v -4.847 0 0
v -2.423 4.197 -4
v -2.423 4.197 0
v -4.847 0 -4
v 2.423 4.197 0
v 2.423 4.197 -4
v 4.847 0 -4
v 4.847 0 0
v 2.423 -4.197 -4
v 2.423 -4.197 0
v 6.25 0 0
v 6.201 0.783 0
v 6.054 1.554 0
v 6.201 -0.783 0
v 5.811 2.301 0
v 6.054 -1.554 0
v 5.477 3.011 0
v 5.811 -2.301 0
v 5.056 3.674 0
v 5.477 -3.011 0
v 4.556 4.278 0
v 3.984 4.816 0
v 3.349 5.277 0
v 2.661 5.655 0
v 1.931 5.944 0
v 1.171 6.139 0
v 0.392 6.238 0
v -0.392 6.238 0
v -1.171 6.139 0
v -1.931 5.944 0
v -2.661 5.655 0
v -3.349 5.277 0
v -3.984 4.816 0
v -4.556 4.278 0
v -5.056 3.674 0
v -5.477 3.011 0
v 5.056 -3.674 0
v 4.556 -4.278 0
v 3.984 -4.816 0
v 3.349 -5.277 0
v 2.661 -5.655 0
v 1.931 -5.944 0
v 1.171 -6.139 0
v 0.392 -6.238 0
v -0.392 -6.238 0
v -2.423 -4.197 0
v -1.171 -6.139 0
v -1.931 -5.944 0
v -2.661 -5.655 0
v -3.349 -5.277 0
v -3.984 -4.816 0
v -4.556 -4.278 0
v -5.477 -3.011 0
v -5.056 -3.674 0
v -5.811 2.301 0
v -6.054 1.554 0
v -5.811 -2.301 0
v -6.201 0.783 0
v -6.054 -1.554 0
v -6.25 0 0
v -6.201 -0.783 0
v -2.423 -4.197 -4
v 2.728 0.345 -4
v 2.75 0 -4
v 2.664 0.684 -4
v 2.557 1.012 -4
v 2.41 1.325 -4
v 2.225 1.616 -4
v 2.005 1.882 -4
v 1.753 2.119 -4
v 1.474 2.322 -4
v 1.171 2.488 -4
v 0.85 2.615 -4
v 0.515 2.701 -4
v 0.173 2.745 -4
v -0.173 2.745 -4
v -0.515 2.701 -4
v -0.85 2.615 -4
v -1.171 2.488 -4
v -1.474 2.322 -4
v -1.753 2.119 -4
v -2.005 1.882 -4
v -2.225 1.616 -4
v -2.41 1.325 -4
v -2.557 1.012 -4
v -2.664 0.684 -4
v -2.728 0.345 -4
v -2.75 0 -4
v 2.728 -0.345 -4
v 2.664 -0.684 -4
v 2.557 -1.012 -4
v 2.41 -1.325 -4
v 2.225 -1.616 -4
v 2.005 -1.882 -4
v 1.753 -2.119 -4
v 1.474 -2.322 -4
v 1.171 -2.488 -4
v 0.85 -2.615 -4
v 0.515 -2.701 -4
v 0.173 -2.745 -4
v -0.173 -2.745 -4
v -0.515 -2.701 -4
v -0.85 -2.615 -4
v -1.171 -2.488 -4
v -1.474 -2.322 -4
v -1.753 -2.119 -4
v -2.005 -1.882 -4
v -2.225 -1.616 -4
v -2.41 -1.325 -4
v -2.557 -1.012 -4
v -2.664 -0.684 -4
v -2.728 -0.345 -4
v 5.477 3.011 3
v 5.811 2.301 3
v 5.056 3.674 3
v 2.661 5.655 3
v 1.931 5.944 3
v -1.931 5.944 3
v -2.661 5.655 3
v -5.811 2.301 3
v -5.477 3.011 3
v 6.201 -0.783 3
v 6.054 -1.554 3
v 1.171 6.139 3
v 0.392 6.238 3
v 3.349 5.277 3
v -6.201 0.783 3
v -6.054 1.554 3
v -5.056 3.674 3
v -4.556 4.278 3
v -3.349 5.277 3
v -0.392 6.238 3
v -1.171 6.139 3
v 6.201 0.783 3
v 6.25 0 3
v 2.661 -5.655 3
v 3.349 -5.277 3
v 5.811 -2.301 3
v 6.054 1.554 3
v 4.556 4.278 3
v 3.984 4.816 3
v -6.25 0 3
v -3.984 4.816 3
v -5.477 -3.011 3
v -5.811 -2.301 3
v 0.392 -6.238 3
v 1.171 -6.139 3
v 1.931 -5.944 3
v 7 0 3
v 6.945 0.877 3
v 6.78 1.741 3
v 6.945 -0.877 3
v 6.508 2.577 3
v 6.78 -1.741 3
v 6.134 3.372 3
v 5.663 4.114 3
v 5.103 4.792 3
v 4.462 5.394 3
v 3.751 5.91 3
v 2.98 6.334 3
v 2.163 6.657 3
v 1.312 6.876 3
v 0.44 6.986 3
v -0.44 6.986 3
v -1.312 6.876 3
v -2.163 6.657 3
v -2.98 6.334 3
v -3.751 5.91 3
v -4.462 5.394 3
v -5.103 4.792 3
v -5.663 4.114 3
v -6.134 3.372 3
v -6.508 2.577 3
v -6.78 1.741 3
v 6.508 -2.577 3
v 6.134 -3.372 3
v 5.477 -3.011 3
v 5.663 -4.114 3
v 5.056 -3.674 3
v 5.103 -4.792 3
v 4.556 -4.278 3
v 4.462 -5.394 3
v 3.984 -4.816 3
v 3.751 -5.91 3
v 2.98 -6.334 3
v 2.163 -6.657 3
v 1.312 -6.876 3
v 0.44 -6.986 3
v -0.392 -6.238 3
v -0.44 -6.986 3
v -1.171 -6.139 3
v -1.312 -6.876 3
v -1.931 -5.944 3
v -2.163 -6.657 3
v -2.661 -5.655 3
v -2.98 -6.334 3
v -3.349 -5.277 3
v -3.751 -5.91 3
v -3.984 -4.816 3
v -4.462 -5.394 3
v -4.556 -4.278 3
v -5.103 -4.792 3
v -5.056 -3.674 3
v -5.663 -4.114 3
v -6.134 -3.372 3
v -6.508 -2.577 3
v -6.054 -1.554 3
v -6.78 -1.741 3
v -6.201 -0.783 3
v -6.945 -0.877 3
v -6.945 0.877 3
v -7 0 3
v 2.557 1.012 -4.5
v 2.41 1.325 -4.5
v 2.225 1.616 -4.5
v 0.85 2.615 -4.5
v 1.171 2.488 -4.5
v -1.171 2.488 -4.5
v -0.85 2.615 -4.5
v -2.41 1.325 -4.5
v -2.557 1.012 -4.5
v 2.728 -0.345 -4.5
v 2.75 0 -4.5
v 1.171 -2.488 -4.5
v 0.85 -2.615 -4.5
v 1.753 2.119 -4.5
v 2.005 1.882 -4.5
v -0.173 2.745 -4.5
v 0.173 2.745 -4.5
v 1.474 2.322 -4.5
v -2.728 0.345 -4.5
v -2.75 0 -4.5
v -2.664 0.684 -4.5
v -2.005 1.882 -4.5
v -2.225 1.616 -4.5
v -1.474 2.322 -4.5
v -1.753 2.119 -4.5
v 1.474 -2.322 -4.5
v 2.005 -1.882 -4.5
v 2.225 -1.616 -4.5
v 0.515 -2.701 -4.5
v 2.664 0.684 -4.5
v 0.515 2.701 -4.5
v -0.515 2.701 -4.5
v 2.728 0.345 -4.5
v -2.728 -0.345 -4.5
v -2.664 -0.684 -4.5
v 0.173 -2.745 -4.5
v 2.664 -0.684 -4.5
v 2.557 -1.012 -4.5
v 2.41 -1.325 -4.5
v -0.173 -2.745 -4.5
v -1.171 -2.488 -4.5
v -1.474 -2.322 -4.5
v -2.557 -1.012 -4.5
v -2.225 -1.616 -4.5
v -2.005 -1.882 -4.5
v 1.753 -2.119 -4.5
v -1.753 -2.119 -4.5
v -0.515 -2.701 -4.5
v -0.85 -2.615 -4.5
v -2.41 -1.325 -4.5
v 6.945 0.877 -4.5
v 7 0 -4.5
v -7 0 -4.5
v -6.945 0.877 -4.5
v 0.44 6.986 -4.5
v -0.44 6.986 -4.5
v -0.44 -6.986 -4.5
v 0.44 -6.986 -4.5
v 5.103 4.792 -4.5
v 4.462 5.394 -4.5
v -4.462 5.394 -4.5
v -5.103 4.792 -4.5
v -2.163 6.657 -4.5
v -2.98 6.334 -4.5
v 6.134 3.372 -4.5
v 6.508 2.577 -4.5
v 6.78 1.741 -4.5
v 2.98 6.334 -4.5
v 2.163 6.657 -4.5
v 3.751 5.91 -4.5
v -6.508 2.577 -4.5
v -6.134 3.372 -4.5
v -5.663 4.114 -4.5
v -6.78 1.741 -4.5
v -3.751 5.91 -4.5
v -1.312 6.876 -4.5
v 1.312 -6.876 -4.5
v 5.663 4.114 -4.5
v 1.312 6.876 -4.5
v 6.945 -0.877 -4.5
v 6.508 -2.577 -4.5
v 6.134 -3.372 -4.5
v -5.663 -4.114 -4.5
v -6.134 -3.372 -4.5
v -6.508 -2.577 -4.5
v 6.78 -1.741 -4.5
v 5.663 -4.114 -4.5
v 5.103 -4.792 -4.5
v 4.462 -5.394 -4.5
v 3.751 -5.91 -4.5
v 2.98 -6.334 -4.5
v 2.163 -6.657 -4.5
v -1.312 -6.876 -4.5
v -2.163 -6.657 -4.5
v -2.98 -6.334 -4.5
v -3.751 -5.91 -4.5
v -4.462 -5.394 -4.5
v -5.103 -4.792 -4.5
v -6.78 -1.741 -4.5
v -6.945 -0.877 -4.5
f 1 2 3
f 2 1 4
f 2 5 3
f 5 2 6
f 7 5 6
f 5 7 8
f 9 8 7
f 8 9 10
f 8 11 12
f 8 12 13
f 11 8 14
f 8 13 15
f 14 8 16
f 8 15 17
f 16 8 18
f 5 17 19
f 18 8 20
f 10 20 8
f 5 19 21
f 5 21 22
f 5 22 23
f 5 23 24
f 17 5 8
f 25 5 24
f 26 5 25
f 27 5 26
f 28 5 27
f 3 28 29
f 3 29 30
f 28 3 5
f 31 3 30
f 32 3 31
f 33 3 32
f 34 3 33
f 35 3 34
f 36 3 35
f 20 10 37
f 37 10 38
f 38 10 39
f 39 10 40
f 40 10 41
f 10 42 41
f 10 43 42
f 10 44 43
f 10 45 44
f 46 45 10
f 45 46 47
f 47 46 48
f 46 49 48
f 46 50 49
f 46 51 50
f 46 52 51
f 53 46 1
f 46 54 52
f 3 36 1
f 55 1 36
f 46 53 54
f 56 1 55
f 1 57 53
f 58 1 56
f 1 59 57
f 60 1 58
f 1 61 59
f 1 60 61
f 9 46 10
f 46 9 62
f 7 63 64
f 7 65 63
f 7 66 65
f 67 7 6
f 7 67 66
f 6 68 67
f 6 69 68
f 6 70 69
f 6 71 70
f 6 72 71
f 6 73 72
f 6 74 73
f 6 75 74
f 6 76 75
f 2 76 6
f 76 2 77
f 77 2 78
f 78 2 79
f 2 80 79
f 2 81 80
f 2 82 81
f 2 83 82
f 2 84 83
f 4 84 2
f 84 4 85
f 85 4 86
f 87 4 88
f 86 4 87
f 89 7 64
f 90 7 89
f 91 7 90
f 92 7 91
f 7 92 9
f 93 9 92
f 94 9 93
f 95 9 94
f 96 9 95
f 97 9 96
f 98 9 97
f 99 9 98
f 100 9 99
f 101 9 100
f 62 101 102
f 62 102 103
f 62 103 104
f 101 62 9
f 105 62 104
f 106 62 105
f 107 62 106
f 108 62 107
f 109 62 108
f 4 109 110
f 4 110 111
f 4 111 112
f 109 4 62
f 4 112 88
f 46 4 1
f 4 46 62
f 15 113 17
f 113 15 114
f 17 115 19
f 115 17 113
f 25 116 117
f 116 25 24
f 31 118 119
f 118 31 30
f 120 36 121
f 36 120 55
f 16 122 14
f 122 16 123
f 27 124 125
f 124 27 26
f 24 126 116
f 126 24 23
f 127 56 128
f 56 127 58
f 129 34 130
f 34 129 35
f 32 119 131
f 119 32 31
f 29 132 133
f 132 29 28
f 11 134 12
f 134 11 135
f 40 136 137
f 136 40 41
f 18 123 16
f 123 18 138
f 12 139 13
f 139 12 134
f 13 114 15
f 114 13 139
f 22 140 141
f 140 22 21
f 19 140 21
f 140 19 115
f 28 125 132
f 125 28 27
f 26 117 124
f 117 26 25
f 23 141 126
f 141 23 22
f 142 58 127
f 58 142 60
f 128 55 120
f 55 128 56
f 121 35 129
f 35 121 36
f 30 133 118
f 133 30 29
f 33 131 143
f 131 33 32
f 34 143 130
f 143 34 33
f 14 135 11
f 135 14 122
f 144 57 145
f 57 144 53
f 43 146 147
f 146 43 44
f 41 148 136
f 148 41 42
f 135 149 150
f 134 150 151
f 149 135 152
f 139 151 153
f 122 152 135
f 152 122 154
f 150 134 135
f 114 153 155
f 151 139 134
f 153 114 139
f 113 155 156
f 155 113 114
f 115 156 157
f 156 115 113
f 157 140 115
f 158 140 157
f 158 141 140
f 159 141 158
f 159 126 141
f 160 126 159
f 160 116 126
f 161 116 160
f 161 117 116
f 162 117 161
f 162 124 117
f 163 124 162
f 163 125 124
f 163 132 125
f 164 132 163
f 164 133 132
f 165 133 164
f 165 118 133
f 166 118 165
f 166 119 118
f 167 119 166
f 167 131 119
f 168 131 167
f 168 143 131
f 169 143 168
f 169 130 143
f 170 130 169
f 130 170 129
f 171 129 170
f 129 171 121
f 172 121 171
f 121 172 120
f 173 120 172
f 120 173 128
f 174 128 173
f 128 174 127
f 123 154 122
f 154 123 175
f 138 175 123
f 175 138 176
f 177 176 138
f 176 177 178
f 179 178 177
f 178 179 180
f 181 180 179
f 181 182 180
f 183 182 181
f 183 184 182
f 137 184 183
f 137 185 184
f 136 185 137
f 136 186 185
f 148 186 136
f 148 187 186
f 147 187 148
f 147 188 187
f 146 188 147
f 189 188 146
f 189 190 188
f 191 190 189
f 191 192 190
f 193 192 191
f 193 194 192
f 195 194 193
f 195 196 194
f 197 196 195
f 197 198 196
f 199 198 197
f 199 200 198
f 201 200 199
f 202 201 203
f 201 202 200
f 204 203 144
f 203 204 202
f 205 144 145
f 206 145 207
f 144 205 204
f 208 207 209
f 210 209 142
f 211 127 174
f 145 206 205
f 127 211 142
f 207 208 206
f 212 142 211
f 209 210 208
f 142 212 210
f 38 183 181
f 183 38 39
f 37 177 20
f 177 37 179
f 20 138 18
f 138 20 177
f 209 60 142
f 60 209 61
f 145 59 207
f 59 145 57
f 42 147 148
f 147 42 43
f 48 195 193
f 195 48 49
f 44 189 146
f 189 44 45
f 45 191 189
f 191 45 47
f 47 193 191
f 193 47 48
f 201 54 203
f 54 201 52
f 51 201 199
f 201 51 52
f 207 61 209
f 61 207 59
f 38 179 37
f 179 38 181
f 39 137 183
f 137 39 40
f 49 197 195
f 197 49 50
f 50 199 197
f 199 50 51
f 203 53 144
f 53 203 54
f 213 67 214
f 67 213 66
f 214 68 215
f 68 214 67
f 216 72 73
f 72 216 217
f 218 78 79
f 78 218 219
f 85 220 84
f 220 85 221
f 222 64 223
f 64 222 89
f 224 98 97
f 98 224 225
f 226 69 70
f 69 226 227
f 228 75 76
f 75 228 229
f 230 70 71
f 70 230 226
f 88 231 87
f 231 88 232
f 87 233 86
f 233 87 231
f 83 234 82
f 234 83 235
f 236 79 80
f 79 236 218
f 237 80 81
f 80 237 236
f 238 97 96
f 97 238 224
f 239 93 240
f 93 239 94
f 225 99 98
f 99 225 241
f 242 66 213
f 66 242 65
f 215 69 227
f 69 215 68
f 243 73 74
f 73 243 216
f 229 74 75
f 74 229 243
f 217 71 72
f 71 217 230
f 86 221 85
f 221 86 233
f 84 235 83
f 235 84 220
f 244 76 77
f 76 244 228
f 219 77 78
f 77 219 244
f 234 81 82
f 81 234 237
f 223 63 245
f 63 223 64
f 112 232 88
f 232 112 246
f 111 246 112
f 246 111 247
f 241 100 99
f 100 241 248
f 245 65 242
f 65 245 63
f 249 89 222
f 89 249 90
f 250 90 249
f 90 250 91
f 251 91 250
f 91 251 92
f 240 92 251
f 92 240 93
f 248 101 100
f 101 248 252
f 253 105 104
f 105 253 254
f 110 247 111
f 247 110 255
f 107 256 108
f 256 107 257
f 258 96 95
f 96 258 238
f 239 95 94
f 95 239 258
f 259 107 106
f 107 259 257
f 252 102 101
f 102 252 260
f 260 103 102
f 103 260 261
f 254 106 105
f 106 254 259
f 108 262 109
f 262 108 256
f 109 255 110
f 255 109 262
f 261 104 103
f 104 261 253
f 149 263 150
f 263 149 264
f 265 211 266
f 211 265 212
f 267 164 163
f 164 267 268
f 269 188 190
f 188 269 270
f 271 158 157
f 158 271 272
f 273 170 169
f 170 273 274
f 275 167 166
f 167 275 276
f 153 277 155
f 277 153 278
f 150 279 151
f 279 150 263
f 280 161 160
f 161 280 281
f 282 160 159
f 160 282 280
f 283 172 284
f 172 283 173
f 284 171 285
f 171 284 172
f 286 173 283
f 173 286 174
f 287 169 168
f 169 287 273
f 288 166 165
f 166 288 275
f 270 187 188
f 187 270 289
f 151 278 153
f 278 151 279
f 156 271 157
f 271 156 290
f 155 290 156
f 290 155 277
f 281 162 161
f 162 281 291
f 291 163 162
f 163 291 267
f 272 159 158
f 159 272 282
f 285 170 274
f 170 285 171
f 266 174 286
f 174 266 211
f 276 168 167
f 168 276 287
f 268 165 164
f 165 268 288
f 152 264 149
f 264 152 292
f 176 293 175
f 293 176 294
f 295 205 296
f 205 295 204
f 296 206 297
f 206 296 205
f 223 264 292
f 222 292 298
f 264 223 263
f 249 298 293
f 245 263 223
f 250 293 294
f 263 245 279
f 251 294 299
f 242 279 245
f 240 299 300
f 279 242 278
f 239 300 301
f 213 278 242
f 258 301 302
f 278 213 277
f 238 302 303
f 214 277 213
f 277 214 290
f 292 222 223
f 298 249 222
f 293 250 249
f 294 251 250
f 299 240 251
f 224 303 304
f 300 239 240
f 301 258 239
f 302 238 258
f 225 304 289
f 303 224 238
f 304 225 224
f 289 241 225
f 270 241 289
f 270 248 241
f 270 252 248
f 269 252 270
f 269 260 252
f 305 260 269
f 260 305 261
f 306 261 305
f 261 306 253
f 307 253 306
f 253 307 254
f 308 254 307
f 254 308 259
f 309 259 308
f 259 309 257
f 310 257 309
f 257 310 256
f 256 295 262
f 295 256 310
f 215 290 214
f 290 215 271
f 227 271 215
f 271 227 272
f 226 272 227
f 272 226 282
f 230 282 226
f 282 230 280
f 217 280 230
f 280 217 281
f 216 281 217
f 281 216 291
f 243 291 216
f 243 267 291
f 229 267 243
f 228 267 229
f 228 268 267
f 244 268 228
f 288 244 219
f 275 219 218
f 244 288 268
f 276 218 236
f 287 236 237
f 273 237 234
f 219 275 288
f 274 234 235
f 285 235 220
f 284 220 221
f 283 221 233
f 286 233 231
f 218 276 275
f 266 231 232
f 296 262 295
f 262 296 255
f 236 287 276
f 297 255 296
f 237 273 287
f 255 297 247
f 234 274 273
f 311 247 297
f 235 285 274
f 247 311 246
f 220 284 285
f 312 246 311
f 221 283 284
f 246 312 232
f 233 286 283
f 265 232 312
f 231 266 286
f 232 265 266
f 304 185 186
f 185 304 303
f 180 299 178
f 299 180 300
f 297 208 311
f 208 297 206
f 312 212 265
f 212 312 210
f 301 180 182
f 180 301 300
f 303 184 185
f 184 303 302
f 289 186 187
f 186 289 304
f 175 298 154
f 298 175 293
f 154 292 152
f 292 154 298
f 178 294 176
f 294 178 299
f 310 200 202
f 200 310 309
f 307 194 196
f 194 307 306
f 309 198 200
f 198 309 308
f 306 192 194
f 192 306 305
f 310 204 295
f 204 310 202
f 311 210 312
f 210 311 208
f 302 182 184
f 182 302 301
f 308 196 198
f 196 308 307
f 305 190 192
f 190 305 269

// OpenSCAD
$fn = 50;


difference() {
	union() {
		translate(v = [0, 0, -4.5000000000]) {
			cylinder(h = 7.5000000000, r = 7.0000000000);
		}
	}
	union() {
		translate(v = [0, 0, 0]) {
			rotate(a = [0, 0, 0]) {
				difference() {
					union() {
						translate(v = [0, 0, -4]) {
							linear_extrude(height = 4) {
								polygon(points = [[4.8468000000, 0.0000000000], [2.4234000000, 4.1974519271], [-2.4234000000, 4.1974519271], [-4.8468000000, 0.0000000000], [-2.4234000000, -4.1974519271], [2.4234000000, -4.1974519271]]);
							}
						}
					}
					union();
				}
			}
		}
		#cylinder(h = 3, r = 6.2500000000);
		#translate(v = [0, 0, -100.0000000000]) {
			cylinder(h = 200, r = 2.7500000000);
		}
	}
}
